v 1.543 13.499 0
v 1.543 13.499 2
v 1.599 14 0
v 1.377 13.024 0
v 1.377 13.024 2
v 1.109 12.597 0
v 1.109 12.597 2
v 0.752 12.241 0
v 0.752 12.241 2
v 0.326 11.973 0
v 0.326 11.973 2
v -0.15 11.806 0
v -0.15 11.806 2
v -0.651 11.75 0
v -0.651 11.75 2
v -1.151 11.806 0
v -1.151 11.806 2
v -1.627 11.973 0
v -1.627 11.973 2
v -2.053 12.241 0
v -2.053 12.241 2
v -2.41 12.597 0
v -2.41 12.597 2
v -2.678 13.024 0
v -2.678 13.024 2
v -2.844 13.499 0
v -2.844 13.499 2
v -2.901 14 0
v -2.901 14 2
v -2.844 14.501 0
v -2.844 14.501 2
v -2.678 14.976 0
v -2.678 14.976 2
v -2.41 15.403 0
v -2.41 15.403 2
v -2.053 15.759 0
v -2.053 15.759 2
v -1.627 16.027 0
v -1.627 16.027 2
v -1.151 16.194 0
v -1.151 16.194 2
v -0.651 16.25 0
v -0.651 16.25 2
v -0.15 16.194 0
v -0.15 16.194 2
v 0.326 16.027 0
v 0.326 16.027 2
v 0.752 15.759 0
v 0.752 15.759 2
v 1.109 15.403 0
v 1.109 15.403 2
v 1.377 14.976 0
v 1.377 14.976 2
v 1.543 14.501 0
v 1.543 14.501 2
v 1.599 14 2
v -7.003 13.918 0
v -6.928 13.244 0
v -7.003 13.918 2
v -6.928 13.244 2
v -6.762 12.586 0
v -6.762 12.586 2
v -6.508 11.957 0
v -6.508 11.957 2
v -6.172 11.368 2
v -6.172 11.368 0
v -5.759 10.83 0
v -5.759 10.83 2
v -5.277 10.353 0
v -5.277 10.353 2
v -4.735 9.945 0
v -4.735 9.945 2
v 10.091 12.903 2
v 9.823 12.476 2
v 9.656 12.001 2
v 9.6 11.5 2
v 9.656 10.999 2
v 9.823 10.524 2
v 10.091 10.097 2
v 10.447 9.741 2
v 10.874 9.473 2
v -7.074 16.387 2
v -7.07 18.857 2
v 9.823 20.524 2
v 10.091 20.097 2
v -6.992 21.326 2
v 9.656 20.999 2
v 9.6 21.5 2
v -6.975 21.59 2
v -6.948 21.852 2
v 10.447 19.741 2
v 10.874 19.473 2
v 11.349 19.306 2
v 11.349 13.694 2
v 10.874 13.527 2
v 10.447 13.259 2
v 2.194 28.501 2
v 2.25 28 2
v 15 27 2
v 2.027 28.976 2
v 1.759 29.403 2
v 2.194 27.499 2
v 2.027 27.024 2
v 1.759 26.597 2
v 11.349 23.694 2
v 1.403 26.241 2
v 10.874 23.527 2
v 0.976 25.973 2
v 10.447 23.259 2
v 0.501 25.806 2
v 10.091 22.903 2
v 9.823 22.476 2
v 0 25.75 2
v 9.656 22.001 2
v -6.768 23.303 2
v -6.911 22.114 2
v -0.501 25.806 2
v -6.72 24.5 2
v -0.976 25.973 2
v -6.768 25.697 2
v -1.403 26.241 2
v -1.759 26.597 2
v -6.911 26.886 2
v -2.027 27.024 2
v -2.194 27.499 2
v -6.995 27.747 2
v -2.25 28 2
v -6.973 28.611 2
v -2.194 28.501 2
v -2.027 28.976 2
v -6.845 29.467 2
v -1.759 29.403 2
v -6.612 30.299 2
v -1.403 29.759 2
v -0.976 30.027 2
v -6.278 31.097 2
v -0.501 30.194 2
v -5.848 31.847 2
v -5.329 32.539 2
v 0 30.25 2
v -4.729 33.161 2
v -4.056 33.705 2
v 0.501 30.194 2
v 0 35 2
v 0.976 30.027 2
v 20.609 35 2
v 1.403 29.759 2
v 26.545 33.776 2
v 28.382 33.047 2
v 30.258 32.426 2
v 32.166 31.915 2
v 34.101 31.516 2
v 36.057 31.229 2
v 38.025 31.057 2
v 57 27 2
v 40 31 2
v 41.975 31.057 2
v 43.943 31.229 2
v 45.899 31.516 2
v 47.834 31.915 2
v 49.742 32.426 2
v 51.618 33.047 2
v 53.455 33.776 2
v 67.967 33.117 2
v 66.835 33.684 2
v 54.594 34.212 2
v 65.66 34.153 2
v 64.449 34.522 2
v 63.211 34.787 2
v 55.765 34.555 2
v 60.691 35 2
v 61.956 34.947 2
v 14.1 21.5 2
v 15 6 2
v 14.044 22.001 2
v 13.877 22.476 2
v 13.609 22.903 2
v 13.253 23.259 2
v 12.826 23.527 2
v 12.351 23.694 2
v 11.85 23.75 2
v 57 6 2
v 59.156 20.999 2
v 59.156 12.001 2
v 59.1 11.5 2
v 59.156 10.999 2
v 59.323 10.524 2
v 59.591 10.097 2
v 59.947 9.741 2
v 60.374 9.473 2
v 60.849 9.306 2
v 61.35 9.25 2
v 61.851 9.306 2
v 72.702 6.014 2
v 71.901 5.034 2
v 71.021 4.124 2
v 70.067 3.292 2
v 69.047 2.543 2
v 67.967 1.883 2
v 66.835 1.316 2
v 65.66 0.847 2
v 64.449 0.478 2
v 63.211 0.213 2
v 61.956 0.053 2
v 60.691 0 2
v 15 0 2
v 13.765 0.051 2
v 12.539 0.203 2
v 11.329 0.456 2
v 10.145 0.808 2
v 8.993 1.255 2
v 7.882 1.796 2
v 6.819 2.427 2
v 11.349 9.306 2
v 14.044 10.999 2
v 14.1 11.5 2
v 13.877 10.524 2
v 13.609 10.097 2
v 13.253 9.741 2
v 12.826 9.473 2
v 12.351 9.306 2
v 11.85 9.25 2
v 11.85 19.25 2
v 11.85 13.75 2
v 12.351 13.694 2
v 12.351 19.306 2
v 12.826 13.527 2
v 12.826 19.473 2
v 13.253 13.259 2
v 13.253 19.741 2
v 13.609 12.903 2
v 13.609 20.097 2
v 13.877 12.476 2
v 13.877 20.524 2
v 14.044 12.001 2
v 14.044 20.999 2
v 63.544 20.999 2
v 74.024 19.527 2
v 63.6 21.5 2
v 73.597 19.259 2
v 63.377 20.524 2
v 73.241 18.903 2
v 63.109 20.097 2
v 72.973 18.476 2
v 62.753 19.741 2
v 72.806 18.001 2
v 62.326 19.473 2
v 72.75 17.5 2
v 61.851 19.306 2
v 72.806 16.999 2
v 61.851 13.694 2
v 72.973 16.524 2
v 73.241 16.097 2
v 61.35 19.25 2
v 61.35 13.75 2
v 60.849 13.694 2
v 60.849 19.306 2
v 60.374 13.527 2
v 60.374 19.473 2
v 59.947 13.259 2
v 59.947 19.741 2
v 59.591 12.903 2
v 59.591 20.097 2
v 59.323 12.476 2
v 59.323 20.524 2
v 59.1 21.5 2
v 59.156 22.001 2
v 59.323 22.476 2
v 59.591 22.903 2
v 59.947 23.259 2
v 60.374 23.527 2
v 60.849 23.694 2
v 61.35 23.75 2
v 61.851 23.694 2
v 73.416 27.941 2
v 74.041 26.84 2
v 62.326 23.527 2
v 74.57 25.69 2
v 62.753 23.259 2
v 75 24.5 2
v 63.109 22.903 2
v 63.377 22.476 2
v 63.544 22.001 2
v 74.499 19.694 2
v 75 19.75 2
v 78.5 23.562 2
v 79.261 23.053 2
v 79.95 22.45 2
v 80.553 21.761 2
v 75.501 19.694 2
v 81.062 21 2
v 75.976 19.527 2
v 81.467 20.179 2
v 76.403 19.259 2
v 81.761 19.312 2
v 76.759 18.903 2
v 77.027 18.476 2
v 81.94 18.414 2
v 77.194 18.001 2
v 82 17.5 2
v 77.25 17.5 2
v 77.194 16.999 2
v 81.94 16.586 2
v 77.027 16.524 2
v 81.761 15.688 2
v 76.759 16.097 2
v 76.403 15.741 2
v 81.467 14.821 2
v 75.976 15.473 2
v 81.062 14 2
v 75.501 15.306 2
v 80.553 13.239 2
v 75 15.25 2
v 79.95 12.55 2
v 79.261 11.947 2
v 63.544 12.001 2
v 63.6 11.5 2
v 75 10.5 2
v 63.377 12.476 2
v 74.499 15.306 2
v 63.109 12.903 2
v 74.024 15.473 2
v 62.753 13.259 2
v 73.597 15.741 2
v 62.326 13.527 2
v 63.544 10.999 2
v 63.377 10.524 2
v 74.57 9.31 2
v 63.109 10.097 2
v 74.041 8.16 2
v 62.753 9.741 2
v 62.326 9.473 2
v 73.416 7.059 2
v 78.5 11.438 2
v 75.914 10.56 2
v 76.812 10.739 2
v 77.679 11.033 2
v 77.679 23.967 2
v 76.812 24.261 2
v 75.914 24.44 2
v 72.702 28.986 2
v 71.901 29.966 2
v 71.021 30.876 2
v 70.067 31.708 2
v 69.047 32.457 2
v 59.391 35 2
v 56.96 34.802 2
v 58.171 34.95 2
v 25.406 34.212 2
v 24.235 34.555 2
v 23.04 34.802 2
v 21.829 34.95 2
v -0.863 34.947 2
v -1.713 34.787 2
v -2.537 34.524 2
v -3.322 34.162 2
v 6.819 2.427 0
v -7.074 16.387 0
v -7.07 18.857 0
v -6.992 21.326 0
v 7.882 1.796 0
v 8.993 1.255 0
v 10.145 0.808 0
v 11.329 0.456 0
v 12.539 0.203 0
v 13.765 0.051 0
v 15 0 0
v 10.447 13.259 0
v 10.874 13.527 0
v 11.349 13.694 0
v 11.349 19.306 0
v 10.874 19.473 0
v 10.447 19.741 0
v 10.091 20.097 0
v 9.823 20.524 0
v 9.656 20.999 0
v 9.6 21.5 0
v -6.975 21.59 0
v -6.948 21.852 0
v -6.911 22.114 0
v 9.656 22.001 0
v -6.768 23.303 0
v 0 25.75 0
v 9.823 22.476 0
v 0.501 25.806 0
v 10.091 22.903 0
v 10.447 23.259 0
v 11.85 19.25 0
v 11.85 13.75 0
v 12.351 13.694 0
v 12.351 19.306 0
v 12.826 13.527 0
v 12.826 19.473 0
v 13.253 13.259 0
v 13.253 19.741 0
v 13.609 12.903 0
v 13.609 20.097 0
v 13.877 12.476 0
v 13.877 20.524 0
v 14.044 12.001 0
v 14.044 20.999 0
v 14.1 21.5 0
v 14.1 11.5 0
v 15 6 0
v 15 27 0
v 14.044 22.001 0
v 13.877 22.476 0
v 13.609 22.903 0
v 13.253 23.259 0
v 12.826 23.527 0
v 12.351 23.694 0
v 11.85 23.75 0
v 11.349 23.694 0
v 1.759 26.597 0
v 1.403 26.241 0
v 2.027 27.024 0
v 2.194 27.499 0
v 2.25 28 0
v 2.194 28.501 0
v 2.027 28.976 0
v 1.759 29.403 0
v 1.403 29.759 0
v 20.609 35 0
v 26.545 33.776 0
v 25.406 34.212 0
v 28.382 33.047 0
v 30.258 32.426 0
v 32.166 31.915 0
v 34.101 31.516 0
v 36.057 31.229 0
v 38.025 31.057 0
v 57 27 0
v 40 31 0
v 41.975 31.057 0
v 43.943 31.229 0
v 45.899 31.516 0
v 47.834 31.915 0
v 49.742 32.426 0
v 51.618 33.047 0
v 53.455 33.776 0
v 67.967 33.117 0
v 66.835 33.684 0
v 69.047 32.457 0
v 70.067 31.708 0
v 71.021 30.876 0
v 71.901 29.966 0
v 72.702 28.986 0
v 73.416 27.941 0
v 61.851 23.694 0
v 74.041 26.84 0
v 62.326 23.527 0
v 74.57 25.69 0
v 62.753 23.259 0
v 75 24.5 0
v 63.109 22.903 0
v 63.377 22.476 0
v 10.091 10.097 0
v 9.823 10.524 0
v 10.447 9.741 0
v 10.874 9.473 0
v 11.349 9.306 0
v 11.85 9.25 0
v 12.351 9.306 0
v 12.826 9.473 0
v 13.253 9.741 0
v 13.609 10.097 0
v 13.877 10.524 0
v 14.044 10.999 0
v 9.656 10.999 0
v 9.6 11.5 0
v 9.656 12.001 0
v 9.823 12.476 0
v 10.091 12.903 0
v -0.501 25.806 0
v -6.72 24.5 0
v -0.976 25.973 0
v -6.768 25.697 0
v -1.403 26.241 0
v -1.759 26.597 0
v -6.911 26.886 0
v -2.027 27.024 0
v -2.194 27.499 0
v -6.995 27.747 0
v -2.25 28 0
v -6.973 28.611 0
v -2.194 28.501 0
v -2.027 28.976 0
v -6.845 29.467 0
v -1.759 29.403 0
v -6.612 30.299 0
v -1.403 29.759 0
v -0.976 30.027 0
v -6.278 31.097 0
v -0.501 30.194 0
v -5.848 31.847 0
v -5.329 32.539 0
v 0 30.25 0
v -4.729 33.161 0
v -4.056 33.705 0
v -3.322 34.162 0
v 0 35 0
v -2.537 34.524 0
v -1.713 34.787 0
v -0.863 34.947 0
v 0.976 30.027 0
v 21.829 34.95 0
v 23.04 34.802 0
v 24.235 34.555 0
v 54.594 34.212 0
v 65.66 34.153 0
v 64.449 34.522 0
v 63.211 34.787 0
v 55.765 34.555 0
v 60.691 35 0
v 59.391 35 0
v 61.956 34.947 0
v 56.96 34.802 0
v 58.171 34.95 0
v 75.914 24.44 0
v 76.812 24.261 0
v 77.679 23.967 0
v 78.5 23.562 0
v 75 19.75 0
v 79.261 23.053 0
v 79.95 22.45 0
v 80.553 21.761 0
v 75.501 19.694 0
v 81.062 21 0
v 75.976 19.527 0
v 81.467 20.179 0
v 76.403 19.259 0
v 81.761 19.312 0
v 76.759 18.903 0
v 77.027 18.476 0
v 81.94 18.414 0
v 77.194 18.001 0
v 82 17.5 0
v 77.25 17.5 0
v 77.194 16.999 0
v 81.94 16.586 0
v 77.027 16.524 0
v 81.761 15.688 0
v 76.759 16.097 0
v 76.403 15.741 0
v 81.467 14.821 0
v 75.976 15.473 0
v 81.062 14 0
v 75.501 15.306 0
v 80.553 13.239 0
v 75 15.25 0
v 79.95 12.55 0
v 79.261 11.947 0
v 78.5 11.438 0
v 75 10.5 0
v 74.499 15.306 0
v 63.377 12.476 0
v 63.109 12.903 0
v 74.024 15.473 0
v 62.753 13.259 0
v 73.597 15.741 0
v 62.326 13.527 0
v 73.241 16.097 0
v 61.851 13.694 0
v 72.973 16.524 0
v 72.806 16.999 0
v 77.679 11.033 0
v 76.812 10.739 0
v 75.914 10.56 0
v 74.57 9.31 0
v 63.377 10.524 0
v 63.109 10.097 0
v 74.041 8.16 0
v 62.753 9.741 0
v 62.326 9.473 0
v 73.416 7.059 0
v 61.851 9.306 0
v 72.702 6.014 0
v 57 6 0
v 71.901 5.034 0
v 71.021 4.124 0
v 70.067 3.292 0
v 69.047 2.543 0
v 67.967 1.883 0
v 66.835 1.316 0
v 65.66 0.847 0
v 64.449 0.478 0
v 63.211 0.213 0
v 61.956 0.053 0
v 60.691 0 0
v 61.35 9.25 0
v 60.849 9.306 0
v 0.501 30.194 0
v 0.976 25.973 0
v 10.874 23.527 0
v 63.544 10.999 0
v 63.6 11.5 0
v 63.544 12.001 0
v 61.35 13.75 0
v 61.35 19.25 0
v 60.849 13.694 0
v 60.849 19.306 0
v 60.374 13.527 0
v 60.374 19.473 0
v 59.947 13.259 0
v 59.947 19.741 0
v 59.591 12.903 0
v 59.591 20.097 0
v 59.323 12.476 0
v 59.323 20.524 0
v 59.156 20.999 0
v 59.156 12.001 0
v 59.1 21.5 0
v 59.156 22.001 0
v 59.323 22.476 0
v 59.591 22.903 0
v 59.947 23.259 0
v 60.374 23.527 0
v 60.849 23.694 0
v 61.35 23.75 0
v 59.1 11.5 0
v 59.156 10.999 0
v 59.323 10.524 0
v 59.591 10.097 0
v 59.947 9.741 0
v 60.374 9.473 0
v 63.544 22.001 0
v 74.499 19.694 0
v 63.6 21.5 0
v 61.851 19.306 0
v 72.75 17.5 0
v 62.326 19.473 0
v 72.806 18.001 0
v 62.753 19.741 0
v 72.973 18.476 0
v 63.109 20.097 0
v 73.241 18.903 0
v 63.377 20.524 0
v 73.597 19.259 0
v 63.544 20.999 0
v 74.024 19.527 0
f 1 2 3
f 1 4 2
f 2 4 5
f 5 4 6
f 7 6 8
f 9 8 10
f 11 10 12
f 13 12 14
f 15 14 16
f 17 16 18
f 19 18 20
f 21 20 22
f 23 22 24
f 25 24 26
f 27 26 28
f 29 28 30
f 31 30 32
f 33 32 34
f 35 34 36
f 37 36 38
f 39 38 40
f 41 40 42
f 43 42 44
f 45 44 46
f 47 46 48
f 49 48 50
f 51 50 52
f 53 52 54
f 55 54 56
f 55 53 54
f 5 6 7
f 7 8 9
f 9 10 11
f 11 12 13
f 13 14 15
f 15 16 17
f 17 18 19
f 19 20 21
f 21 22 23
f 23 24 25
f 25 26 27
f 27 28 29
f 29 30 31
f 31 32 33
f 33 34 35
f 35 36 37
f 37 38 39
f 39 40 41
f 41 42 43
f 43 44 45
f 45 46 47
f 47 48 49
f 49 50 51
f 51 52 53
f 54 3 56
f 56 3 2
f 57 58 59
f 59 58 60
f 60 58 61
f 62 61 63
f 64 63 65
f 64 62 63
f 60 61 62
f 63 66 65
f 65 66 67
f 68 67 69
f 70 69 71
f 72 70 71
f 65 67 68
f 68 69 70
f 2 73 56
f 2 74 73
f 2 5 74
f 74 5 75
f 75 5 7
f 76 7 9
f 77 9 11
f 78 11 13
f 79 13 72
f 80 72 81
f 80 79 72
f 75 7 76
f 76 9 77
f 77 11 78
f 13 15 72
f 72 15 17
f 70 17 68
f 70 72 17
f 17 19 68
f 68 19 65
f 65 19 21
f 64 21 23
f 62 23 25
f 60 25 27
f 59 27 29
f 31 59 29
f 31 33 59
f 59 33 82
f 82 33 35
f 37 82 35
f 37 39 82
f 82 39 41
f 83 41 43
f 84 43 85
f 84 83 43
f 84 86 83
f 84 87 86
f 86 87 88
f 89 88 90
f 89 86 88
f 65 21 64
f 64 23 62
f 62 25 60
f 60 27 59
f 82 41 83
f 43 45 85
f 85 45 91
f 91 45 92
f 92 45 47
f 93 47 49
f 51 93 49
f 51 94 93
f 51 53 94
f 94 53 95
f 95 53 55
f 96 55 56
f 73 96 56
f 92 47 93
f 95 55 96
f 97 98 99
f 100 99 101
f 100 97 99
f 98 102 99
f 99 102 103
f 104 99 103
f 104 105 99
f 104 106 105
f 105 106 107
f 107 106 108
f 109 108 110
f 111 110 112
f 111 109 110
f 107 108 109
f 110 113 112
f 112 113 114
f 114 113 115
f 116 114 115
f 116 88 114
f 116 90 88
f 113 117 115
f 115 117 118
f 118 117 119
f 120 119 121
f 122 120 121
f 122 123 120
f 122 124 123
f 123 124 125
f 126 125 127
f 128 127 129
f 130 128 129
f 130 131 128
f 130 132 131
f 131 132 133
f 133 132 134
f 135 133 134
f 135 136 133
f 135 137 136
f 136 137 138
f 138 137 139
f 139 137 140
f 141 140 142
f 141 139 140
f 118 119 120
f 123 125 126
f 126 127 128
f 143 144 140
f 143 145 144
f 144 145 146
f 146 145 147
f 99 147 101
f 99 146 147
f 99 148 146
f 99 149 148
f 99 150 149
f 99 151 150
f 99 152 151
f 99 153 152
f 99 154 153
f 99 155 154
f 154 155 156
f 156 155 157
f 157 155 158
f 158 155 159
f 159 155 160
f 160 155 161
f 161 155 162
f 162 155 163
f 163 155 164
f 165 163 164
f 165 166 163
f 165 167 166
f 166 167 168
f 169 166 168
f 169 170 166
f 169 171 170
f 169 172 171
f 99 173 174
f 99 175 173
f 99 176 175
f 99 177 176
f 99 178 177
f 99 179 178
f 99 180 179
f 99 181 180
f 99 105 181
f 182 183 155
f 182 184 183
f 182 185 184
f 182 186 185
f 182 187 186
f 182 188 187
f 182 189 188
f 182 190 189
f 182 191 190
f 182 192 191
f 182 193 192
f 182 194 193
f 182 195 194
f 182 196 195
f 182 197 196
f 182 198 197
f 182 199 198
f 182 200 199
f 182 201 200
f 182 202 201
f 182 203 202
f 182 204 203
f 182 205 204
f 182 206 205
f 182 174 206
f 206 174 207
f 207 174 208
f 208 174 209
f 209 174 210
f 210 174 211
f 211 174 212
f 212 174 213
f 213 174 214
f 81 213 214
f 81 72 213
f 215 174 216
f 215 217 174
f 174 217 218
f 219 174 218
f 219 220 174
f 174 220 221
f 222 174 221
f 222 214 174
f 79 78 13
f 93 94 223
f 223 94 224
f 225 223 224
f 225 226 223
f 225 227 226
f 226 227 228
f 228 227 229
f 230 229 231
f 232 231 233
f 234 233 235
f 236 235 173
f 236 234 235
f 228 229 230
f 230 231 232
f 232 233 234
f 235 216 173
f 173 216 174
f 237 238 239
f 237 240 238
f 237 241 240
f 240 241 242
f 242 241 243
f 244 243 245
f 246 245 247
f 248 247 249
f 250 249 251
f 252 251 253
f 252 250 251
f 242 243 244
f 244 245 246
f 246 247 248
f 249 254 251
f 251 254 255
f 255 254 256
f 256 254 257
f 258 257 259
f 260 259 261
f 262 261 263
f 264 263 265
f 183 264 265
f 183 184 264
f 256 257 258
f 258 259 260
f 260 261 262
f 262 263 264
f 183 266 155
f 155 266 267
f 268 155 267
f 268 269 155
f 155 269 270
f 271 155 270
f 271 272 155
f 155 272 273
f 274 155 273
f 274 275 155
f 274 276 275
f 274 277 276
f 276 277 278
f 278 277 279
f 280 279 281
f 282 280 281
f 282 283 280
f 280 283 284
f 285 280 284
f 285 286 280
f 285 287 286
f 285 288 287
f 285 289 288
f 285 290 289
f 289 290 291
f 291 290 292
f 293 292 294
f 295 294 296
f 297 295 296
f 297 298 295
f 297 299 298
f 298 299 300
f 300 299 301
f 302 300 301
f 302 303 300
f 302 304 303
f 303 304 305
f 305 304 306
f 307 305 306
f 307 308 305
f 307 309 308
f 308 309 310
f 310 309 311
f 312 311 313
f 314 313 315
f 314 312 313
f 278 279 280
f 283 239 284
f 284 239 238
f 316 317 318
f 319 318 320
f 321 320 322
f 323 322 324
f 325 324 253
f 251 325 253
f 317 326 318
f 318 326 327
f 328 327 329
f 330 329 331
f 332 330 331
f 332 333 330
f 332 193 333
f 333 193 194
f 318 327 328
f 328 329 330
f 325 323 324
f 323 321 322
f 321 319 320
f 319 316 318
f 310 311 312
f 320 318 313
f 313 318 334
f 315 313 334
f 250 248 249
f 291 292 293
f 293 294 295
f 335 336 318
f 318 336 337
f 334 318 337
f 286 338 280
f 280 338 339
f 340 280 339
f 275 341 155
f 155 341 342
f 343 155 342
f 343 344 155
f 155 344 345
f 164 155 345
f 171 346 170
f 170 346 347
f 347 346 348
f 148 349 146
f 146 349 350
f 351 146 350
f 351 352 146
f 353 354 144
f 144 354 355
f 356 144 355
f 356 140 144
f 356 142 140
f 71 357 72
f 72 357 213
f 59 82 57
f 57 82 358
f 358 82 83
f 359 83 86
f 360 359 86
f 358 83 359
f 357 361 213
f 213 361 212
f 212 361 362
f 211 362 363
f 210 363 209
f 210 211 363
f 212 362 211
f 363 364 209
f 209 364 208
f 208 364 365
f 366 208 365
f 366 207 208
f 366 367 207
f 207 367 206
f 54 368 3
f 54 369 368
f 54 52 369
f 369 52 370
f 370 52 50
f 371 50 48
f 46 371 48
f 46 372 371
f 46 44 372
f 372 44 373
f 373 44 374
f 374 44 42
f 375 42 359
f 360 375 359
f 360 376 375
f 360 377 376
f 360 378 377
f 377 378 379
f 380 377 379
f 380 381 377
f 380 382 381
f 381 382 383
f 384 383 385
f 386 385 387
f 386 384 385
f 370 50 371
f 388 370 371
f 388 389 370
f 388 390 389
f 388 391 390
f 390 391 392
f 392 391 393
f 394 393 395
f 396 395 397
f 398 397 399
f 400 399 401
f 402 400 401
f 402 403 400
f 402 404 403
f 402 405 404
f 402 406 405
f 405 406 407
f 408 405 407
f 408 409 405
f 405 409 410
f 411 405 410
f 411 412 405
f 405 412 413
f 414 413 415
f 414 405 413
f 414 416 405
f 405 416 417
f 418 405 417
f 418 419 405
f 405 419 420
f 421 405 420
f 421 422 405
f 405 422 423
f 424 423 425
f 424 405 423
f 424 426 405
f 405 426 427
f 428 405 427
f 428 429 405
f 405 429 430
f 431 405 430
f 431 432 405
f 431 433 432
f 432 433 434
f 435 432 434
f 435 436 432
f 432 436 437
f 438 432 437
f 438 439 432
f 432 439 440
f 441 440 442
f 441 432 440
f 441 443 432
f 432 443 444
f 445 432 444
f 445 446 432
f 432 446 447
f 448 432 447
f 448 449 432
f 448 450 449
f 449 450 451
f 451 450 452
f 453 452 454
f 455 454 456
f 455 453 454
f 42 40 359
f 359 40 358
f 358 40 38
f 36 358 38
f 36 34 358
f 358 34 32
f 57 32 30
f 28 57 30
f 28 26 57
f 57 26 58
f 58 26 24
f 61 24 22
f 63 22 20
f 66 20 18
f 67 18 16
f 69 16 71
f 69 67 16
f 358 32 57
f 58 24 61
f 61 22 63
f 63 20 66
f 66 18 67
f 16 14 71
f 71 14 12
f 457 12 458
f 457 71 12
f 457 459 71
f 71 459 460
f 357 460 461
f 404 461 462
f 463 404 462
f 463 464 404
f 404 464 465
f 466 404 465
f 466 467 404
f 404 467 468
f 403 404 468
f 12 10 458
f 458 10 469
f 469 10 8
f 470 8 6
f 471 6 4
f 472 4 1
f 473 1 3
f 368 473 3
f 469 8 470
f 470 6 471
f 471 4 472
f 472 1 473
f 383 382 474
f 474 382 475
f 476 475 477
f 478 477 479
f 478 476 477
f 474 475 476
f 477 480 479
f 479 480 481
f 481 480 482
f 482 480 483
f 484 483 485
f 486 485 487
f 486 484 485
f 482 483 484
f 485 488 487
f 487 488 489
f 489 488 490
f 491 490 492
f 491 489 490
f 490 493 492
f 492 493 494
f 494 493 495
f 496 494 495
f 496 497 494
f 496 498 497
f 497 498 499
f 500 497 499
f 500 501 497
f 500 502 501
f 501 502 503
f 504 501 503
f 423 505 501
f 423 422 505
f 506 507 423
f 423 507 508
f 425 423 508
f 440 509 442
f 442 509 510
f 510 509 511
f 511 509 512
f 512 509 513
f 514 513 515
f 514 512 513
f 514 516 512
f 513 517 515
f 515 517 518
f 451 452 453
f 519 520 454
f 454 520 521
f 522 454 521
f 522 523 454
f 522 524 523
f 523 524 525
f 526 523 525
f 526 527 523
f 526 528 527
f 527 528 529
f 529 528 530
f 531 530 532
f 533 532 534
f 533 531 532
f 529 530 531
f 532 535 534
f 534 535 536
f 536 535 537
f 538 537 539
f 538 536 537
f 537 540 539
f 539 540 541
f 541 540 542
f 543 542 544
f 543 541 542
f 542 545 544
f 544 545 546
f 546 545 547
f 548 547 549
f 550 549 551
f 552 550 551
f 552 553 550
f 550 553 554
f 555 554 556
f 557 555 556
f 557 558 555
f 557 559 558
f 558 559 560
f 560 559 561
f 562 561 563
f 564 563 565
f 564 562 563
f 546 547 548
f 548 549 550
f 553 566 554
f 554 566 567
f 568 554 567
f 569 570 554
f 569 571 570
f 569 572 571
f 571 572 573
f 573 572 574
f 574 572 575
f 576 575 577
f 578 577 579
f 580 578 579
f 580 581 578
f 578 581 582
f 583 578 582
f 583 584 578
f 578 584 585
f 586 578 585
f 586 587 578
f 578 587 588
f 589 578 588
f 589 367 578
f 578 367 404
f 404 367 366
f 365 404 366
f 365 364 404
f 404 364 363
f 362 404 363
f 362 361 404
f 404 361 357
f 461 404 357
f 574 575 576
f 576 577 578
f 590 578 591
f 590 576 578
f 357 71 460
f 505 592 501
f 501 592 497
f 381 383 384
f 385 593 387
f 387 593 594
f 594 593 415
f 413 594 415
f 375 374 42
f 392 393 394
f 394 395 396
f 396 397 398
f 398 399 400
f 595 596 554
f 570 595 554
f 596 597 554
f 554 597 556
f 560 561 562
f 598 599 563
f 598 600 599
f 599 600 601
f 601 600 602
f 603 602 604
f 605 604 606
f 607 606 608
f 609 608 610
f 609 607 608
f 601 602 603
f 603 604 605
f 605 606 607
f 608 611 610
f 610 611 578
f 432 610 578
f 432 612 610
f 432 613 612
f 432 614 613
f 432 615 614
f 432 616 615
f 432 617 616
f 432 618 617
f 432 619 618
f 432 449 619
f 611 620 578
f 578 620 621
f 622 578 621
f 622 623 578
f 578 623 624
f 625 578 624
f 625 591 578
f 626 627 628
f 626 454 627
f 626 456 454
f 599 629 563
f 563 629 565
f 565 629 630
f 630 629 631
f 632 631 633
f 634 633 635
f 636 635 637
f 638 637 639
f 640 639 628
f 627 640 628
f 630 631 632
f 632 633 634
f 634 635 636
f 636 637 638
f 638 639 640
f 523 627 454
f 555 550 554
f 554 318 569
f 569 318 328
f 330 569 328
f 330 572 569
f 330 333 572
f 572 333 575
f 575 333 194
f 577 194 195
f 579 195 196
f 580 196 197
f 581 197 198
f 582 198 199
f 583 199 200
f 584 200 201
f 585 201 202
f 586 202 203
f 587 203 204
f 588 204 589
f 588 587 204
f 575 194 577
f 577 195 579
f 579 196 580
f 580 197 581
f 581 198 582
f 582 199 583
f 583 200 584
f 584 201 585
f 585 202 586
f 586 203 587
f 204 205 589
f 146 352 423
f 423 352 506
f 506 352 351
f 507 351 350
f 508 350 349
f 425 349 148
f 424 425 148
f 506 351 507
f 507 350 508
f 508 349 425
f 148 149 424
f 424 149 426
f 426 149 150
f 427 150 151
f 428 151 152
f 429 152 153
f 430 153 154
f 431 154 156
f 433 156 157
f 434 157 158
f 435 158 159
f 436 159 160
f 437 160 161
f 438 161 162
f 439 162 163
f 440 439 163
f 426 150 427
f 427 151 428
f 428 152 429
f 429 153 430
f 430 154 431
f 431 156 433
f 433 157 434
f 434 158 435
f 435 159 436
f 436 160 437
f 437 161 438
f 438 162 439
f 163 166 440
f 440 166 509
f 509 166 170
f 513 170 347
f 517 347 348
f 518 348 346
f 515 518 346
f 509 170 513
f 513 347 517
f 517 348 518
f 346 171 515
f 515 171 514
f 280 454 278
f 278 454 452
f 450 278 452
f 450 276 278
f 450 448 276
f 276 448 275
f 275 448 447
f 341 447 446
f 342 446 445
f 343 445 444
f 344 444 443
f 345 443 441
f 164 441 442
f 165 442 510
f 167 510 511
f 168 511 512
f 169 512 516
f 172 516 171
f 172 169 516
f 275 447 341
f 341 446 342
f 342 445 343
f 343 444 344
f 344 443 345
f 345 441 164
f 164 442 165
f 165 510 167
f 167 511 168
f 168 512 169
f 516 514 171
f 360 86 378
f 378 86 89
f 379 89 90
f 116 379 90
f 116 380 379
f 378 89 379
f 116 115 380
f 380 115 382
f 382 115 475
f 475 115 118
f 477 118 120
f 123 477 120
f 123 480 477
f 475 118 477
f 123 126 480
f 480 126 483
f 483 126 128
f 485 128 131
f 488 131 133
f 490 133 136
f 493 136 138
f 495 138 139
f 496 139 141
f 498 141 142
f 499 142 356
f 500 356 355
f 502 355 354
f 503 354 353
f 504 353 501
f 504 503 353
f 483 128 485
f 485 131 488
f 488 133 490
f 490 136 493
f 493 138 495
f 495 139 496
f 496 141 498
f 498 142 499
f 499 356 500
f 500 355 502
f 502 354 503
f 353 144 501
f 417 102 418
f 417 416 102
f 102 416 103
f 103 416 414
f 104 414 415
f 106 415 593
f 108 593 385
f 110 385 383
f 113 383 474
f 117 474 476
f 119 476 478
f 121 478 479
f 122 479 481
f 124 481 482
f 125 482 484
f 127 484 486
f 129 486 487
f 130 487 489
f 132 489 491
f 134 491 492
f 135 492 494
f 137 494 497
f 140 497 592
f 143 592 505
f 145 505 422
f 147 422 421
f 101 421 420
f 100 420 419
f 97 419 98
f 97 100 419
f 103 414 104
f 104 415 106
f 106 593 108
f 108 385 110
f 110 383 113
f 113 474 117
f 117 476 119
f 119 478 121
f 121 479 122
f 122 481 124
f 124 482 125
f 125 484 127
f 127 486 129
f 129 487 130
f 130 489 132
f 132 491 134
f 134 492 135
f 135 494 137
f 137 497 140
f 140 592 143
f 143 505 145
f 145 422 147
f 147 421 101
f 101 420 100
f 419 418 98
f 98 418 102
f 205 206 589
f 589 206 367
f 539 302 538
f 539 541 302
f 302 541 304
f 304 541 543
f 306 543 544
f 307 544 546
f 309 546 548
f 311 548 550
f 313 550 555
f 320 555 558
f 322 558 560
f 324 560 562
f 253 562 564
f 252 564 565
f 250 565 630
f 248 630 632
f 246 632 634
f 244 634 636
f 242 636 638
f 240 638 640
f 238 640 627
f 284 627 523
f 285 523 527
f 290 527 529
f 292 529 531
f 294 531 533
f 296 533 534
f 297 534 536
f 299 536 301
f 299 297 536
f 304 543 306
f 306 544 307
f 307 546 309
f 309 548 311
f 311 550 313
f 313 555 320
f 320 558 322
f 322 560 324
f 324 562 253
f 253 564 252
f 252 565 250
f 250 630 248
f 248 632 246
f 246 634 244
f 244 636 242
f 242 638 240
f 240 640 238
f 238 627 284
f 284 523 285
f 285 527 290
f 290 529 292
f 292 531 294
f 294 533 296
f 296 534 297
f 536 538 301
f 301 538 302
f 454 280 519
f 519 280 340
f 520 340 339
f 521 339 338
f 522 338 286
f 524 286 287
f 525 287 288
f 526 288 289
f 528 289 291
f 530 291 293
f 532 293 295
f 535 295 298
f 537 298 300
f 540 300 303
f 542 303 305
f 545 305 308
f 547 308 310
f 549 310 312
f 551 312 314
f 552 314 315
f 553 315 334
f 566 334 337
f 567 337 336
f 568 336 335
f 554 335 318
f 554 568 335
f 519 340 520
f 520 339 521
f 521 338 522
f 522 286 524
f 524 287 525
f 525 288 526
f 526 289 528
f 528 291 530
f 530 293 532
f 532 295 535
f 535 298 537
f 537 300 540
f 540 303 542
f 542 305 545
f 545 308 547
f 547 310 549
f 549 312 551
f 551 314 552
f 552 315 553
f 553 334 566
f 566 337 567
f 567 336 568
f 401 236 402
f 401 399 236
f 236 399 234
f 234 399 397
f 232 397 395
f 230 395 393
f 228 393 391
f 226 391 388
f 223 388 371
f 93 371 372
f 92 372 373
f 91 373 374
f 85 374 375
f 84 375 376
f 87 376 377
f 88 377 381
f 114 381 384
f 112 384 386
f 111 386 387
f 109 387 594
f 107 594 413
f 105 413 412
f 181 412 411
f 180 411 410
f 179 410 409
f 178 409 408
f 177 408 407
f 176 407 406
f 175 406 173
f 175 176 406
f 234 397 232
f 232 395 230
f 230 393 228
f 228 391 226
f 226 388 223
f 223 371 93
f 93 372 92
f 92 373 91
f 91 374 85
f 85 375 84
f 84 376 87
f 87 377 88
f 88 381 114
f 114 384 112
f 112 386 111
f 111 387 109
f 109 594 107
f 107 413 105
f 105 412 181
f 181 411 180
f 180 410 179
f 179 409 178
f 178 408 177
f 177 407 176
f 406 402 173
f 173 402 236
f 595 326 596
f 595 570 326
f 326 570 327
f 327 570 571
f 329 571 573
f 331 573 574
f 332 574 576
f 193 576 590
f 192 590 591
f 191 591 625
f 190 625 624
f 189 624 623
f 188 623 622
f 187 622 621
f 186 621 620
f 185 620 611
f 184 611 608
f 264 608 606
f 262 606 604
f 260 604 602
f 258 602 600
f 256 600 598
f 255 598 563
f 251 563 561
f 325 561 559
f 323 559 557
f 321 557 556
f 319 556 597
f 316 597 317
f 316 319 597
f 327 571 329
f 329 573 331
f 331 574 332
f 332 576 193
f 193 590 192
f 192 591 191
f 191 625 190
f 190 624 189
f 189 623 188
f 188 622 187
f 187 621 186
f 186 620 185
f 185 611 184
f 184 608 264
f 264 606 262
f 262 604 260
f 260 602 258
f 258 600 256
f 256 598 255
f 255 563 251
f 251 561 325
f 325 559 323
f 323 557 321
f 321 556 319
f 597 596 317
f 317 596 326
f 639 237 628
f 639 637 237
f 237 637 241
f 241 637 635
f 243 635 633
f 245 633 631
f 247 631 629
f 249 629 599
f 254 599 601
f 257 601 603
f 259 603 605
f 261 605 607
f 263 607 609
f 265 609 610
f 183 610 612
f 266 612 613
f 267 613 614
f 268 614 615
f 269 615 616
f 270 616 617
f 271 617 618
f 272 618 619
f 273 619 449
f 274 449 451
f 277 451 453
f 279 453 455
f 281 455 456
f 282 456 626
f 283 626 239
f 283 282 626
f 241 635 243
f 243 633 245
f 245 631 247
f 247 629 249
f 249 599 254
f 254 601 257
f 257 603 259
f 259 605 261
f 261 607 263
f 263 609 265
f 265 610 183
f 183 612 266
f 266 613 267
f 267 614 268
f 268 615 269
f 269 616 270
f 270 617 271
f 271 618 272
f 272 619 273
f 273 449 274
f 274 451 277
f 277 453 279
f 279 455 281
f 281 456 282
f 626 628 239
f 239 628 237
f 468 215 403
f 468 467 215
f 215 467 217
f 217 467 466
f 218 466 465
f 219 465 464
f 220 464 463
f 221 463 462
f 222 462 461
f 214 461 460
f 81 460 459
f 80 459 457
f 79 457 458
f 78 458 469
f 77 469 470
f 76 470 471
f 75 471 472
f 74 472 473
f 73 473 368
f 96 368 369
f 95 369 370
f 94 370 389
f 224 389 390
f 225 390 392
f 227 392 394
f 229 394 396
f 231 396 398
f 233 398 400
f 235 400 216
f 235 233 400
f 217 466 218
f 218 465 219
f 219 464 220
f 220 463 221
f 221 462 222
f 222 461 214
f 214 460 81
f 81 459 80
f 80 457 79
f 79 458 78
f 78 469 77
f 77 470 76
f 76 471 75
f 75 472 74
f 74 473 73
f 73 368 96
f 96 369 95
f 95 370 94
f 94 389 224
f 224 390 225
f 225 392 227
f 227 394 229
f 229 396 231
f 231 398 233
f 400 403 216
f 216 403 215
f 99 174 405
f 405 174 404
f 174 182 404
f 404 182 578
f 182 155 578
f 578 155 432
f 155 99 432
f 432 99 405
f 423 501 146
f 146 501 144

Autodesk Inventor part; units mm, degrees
ref_plane "YZ Plane" through (0, 0, 0) normal (1, 0, 0) x (0, 1, 0)
ref_plane "XZ Plane" through (0, 0, 0) normal (0, 1, 0) x (-1, 0, 0)
ref_plane "XY Plane" through (0, 0, 0) normal (0, 0, 1) x (1, 0, 0)
sketch "Skizze1" plane through (0, 0, 0) normal (0, 0, 1) x (1, 0, 0)
  line L0 (0, 78) -> (0, -13) projected
  line L1 (-15, 0) -> (90, 0) projected
  line L2 (0, 0) -> (75, 0)
  line L3 (75, 0) -> (75, 35)
  line L4 (75, 35) -> (0, 35)
  line L5 (0, 35) -> (0, 0)
  arc A0 (24, 35) -> (56, 35) centre (40, 65) ccw
  dimension "d0" = 75
  dimension "d1" = 35
  dimension "d3" = 35
  dimension "d4" = 30
  dimension "d6" = 34
extrude "Extrusion1" add sketch "Skizze1" along normal blind 2 contours L4 A0 L3 L1 L0
sketch "Skizze2" plane through (0, 0, 2) normal (0, 0, 1) x (1, 0, 0)
  line L0 (36, 6) -> (57, 6)
  line L1 (57, 6) -> (57, 27)
  line L2 (57, 27) -> (36, 27)
  line L3 (36, 27) -> (36, 6)
  line L4 (36, 6) -> (57, 27) construction
  line L5 (57, 6) -> (36, 27) construction
  line L6 (57, 27) -> (15, 27)
  line L7 (15, 27) -> (15, 6)
  line L8 (15, 6) -> (57, 6)
  line L9 (57, 6) -> (57, 27)
  line L10 (75, 0) -> (75, 35) projected
  line L11 (24, 35) -> (0, 35) projected
  circle A0 centre (61.35, 21.5) radius 2.25
  circle A1 centre (61.35, 11.5) radius 2.25
  circle A2 centre (11.85, 11.5) radius 2.25
  circle A3 centre (11.85, 21.5) radius 2.25
  point P0 (0, 0)
  point P1 (46.5, 16.5)
  dimension "d9" = 21
  dimension "d10" = 21
  dimension "d11" = 42
  dimension "d12" = 0
  dimension "d13" = 18
  dimension "d14" = 8
  dimension "d15" = 4.5
  dimension "d16" = 4.5
  dimension "d17" = 4.5
  dimension "d18" = 4.5
  dimension "d19" = 14.85
  dimension "d20" = 5
  dimension "d21" = 5
  dimension "d22" = 14.85
  dimension "d23" = 34.65
  dimension "d24" = 34.65
  dimension "d27" = 5
  dimension "d28" = 5
extrude "Extrusion2" cut sketch "Skizze2" against normal blind 2
sketch "Skizze3" plane through (0, 0, 2) normal (0, 0, 1) x (1, 0, 0)
  circle A0 centre (11.85, 21.5) radius 2.25 projected
  circle A1 centre (61.35, 11.5) radius 2.25 projected
  circle A2 centre (61.35, 21.5) radius 2.25 projected
  circle A3 centre (11.85, 11.5) radius 2.25 projected
  line L0 (15, 27) -> (15, 6) projected
  line L1 (15, 6) -> (57, 6) projected
  line L2 (57, 6) -> (57, 27) projected
  line L3 (57, 27) -> (15, 27) projected
  line L4 (0, 0) -> (0, 35) projected
  line L5 (0, 35) -> (24, 35) projected
  arc A4 (24, 35) -> (56, 35) centre (40, 65) ccw projected
  line L6 (56, 35) -> (75, 35) projected
  line L7 (75, 35) -> (75, 0) projected
  line L8 (75, 0) -> (0, 0) projected
  line L9 (75, 0) -> (75, 35) projected
  circle A5 centre (75, 17.5) radius 7
  line L10 (75, 0) -> (75, 35) projected
  dimension "d31" = 14
  dimension "d32" = 35
  dimension "d33" = 17.5
extrude "Extrusion3" add sketch "Skizze3" against normal blind 2 contours A5 L7 | L7 A5
sketch "Skizze4" plane through (0, 0, 2) normal (0, 0, 1) x (1, 0, 0)
  circle A0 centre (11.85, 21.5) radius 2.25 projected
  circle A1 centre (61.35, 11.5) radius 2.25 projected
  circle A2 centre (61.35, 21.5) radius 2.25 projected
  circle A3 centre (11.85, 11.5) radius 2.25 projected
  line L0 (15, 27) -> (15, 6) projected
  line L1 (15, 6) -> (57, 6) projected
  line L2 (57, 6) -> (57, 27) projected
  line L3 (57, 27) -> (15, 27) projected
  line L4 (0, 0) -> (0, 35) projected
  line L5 (0, 35) -> (24, 35) projected
  arc A4 (24, 35) -> (56, 35) centre (40, 65) ccw projected
  line L6 (56, 35) -> (75, 35) projected
  line L7 (75, 35) -> (75, 24.5) projected
  arc A5 (75, 10.5) -> (75, 24.5) centre (75, 17.5) ccw projected
  line L8 (75, 10.5) -> (75, 0) projected
  line L9 (75, 0) -> (0, 0) projected
  circle A6 centre (75, 17.5) radius 2.25
  dimension "d36" = 4.5
extrude "Extrusion4" cut sketch "Skizze4" against normal blind 2 contours A6
fillet "Rundung1" radius 15 1 edges at (0, 0, 1)
sketch "Skizze5" plane through (0, 0, 2) normal (0, 0, 1) x (1, 0, 0)
  line L0 (0, 35) -> (0, 15) projected
  circle A0 centre (0, 28) radius 7
  circle A1 centre (75, 17.5) radius 2.25 projected
  arc A2 (75, 10.5) -> (75, 24.5) centre (75, 17.5) ccw projected
  line L1 (75, 10.5) -> (75, 0) projected
  line L2 (75, 0) -> (15, 0) projected
  arc A3 (0, 15) -> (15, 0) centre (15, 15) ccw projected
  line L3 (0, 15) -> (0, 35) projected
  line L4 (0, 35) -> (24, 35) projected
  arc A4 (24, 35) -> (56, 35) centre (40, 65) ccw projected
  line L5 (56, 35) -> (75, 35) projected
  line L6 (75, 35) -> (75, 24.5) projected
  circle A5 centre (11.85, 21.5) radius 2.25 projected
  circle A6 centre (61.35, 11.5) radius 2.25 projected
  circle A7 centre (61.35, 21.5) radius 2.25 projected
  circle A8 centre (11.85, 11.5) radius 2.25 projected
  line L7 (15, 27) -> (15, 6) projected
  line L8 (15, 6) -> (57, 6) projected
  line L9 (57, 6) -> (57, 27) projected
  line L10 (57, 27) -> (15, 27) projected
  circle A9 centre (0, 21) radius 7
  point P0 (0, 0)
  dimension "d40" = 14
  dimension "d46" = 14
extrude "Extrusion5" add sketch "Skizze5" against normal blind 2 contours A0 A9 L0 | L0 A9 A0 | A9 A0 L0 | L0 A0 A9 | A0 L0 A3 A9 | A0 A9 A3 L0
sketch "Skizze6" plane through (0, 0, 2) normal (0, 0, 1) x (1, 0, 0)
  circle A0 centre (75, 17.5) radius 2.25 projected
  arc A1 (75, 10.5) -> (75, 24.5) centre (75, 17.5) ccw projected
  line L0 (75, 10.5) -> (75, 0) projected
  line L1 (75, 0) -> (15, 0) projected
  line L2 (0, 35) -> (24, 35) projected
  arc A2 (24, 35) -> (56, 35) centre (40, 65) ccw projected
  line L3 (56, 35) -> (75, 35) projected
  line L4 (75, 35) -> (75, 24.5) projected
  circle A3 centre (11.85, 21.5) radius 2.25 projected
  circle A4 centre (61.35, 11.5) radius 2.25 projected
  circle A5 centre (61.35, 21.5) radius 2.25 projected
  circle A6 centre (11.85, 11.5) radius 2.25 projected
  line L5 (15, 27) -> (15, 6) projected
  line L6 (15, 6) -> (57, 6) projected
  line L7 (57, 6) -> (57, 27) projected
  line L8 (57, 27) -> (15, 27) projected
  circle A7 centre (0, 28) radius 2.25
  circle A8 centre (75, 17.5) radius 75.7314
  circle A9 centre (-0.7298, 18) radius 7
  arc A10 (0.0334, 14.0001) -> (15, 0) centre (15, 15) ccw projected
  arc A11 (-6.0622, 24.5) -> (0.0334, 14.0001) centre (0, 21) ccw projected
  arc A12 (0, 35) -> (-6.0622, 24.5) centre (0, 28) ccw projected
  point P0 (0, 0)
  point P1 (0, 21)
  dimension "d43" = 4.5
  dimension "d47" = 14
  dimension "d48" = 3
extrude "Extrusion6" cut sketch "Skizze6" against normal blind 2 contours A8 A7 | A7 A8
fillet "Rundung2" radius 15 2 edges at (-6.0622, 24.5, 1) (0.0334, 14.0001, 1)
sketch "Skizze7" plane through (0, 0, 2) normal (0, 0, 1) x (1, 0, 0)
  circle A0 centre (0, 28) radius 2.25 projected
  circle A1 centre (75, 17.5) radius 2.25 projected
  arc A2 (75, 10.5) -> (75, 24.5) centre (75, 17.5) ccw projected
  line L0 (75, 10.5) -> (75, 0) projected
  line L1 (75, 0) -> (15, 0) projected
  arc A3 (1.286, 8.9233) -> (15, 0) centre (15, 15) ccw projected
  arc A4 (1.286, 8.9233) -> (-3.9544, 15.2239) centre (-12.428, 2.8466) ccw projected
  arc A5 (-6.9108, 22.1136) -> (-3.9544, 15.2239) centre (0, 21) ccw projected
  arc A6 (-6.9108, 22.1136) -> (-6.9108, 26.8864) centre (-21.7198, 24.5) ccw projected
  arc A7 (0, 35) -> (-6.9108, 26.8864) centre (0, 28) ccw projected
  line L2 (0, 35) -> (24, 35) projected
  arc A8 (24, 35) -> (56, 35) centre (40, 65) ccw projected
  line L3 (56, 35) -> (75, 35) projected
  line L4 (75, 35) -> (75, 24.5) projected
  circle A9 centre (11.85, 21.5) radius 2.25 projected
  circle A10 centre (61.35, 11.5) radius 2.25 projected
  circle A11 centre (61.35, 21.5) radius 2.25 projected
  circle A12 centre (11.85, 11.5) radius 2.25 projected
  line L5 (15, 27) -> (15, 6) projected
  line L6 (15, 6) -> (57, 6) projected
  line L7 (57, 6) -> (57, 27) projected
  line L8 (57, 27) -> (15, 27) projected
  arc A13 (75, 10.5) -> (75, 24.5) centre (75, 17.5) ccw projected
  circle A14 centre (75, 17.5) radius 75.7314
  circle A15 centre (-0.7166, 19) radius 2.25
  point P0 (0, 0)
  dimension "d50" = 9
  dimension "d51" = 4.5
extrude "Extrusion7" cut sketch "Skizze7" against normal blind 2 contours A15 A14 | A14 A15
fillet "Rundung3" radius 15 4 edges at (75, 35, 1) (56, 35, 1) (24, 35, 1) (75, 0, 1)
sketch "Skizze8" plane through (0, 0, 2) normal (0, 0, 1) x (1, 0, 0)
  circle A0 centre (-0.7166, 19) radius 2.25 projected
  arc A1 (1.286, 8.9233) -> (-3.9544, 15.2239) centre (-12.428, 2.8466) ccw projected
  arc A2 (-6.9108, 22.1136) -> (-3.9544, 15.2239) centre (0, 21) ccw projected
  arc A3 (-6.9108, 22.1136) -> (-6.9108, 26.8864) centre (-21.7198, 24.5) ccw projected
  arc A4 (0, 35) -> (-6.9108, 26.8864) centre (0, 28) ccw projected
  line L0 (0, 35) -> (20.6093, 35) projected
  arc A5 (26.5452, 33.7755) -> (20.6093, 35) centre (20.6093, 20) ccw projected
  arc A6 (26.5452, 33.7755) -> (53.4548, 33.7755) centre (40, 65) ccw projected
  arc A7 (59.3907, 35) -> (53.4548, 33.7755) centre (59.3907, 20) ccw projected
  line L1 (59.3907, 35) -> (60.6909, 35) projected
  arc A8 (75, 24.5) -> (60.6909, 35) centre (60.6909, 20) ccw projected
  arc A9 (75, 10.5) -> (75, 24.5) centre (75, 17.5) ccw projected
  arc A10 (60.6909, 0) -> (75, 10.5) centre (60.6909, 15) ccw projected
  line L2 (60.6909, 0) -> (15, 0) projected
  arc A11 (1.286, 8.9233) -> (15, 0) centre (15, 15) ccw projected
  circle A12 centre (0, 28) radius 2.25 projected
  circle A13 centre (75, 17.5) radius 2.25 projected
  circle A14 centre (11.85, 21.5) radius 2.25 projected
  circle A15 centre (61.35, 11.5) radius 2.25 projected
  circle A16 centre (61.35, 21.5) radius 2.25 projected
  circle A17 centre (11.85, 11.5) radius 2.25 projected
  line L3 (15, 27) -> (15, 6) projected
  line L4 (15, 6) -> (57, 6) projected
  line L5 (57, 6) -> (57, 27) projected
  line L6 (57, 27) -> (15, 27) projected
  circle A18 centre (75, 17.5) radius 2.25 projected
  circle A19 centre (75, 17.5) radius 82.0816
  line L7 (-6.8487, 11.3205) -> (6.8192, 2.4272)
  arc A20 (1.286, 8.9233) -> (15, 0) centre (15, 15) ccw projected
  line L8 (6.8192, 2.4272) -> (-0.8956, 15)
  line L9 (-0.8956, 15) -> (-5.8598, 18.2396)
  line L10 (-5.8598, 18.2396) -> (-6.9924, 21.3263)
  arc A21 (-6.9108, 22.1136) -> (-3.9544, 15.2239) centre (0, 21) ccw projected
  point P0 (0, 0)
extrude "Extrusion8" add sketch "Skizze8" against normal blind 2 contours A11 L7 A19 A2 A1 | A1 A2 L10 L9 L8 A11
fillet "Rundung4" radius 5 1 edges at (-6.8487, 11.3205, 1)
sketch "Skizze9" plane through (0, 0, 2) normal (0, 0, 1) x (1, 0, 0)
  arc A0 (26.5452, 33.7755) -> (20.6093, 35) centre (20.6093, 20) ccw projected
  arc A1 (26.5452, 33.7755) -> (53.4548, 33.7755) centre (40, 65) ccw projected
  arc A2 (59.3907, 35) -> (53.4548, 33.7755) centre (59.3907, 20) ccw projected
  line L0 (59.3907, 35) -> (60.6909, 35) projected
  arc A3 (75, 24.5) -> (60.6909, 35) centre (60.6909, 20) ccw projected
  arc A4 (75, 10.5) -> (75, 24.5) centre (75, 17.5) ccw projected
  arc A5 (60.6909, 0) -> (75, 10.5) centre (60.6909, 15) ccw projected
  line L1 (60.6909, 0) -> (15, 0) projected
  arc A6 (6.8192, 2.4272) -> (15, 0) centre (15, 15) ccw projected
  line L2 (6.8192, 2.4272) -> (-4.7351, 9.9453) projected
  arc A7 (-7.0034, 13.918) -> (-4.7351, 9.9453) centre (-2.0082, 14.1362) ccw projected
  arc A8 (-6.9924, 21.3263) -> (-7.0034, 13.918) centre (75, 17.5) ccw projected
  arc A9 (-6.9108, 22.1136) -> (-6.9924, 21.3263) centre (0, 21) ccw projected
  arc A10 (-6.9108, 22.1136) -> (-6.9108, 26.8864) centre (-21.7198, 24.5) ccw projected
  arc A11 (0, 35) -> (-6.9108, 26.8864) centre (0, 28) ccw projected
  line L3 (0, 35) -> (20.6093, 35) projected
  circle A12 centre (-0.7166, 19) radius 2.25 projected
  circle A13 centre (0, 28) radius 2.25 projected
  circle A14 centre (75, 17.5) radius 2.25 projected
  circle A15 centre (11.85, 21.5) radius 2.25 projected
  circle A16 centre (61.35, 11.5) radius 2.25 projected
  circle A17 centre (61.35, 21.5) radius 2.25 projected
  circle A18 centre (11.85, 11.5) radius 2.25 projected
  line L4 (15, 27) -> (15, 6) projected
  line L5 (15, 6) -> (57, 6) projected
  line L6 (57, 6) -> (57, 27) projected
  line L7 (57, 27) -> (15, 27) projected
  point P0 (0, 0)
extrude "Extrusion9" add sketch "Skizze9" against normal up to surface (2 mm away) contours A12
sketch "Skizze10" plane through (0, 0, 2) normal (0, 0, 1) x (1, 0, 0)
  arc A0 (26.5452, 33.7755) -> (20.6093, 35) centre (20.6093, 20) ccw projected
  arc A1 (26.5452, 33.7755) -> (53.4548, 33.7755) centre (40, 65) ccw projected
  arc A2 (59.3907, 35) -> (53.4548, 33.7755) centre (59.3907, 20) ccw projected
  line L0 (59.3907, 35) -> (60.6909, 35) projected
  arc A3 (75, 24.5) -> (60.6909, 35) centre (60.6909, 20) ccw projected
  arc A4 (75, 10.5) -> (75, 24.5) centre (75, 17.5) ccw projected
  arc A5 (60.6909, 0) -> (75, 10.5) centre (60.6909, 15) ccw projected
  line L1 (60.6909, 0) -> (15, 0) projected
  arc A6 (6.8192, 2.4272) -> (15, 0) centre (15, 15) ccw projected
  line L2 (6.8192, 2.4272) -> (-4.7351, 9.9453) projected
  arc A7 (-7.0034, 13.918) -> (-4.7351, 9.9453) centre (-2.0082, 14.1362) ccw projected
  arc A8 (-6.9924, 21.3263) -> (-7.0034, 13.918) centre (75, 17.5) ccw projected
  arc A9 (-6.9108, 22.1136) -> (-6.9924, 21.3263) centre (0, 21) ccw projected
  arc A10 (-6.9108, 22.1136) -> (-6.9108, 26.8864) centre (-21.7198, 24.5) ccw projected
  arc A11 (0, 35) -> (-6.9108, 26.8864) centre (0, 28) ccw projected
  line L3 (0, 35) -> (20.6093, 35) projected
  circle A12 centre (0, 28) radius 2.25 projected
  circle A13 centre (75, 17.5) radius 2.25 projected
  circle A14 centre (11.85, 21.5) radius 2.25 projected
  circle A15 centre (61.35, 11.5) radius 2.25 projected
  circle A16 centre (61.35, 21.5) radius 2.25 projected
  circle A17 centre (11.85, 11.5) radius 2.25 projected
  line L4 (15, 27) -> (15, 6) projected
  line L5 (15, 6) -> (57, 6) projected
  line L6 (57, 6) -> (57, 27) projected
  line L7 (57, 27) -> (15, 27) projected
  circle A18 centre (75, 17.5) radius 75.7314
  circle A19 centre (-0.6505, 14) radius 2.25
  point P0 (0, 0)
  dimension "d60" = 14
  dimension "d61" = 4.5
extrude "Extrusion10" cut sketch "Skizze10" against normal blind 2 contours A19 A18 | A18 A19
equation "\"d16\" = d15"
equation "\"d17\" = d15"
equation "\"d18\" = d17"
equation "\"d21\" = d20"
equation "\"d22\" = d19"
equation "\"d24\" = d23"
equation "\"d28\" = d27"
equation "\"d33\" = 0.5 * d32"
properties part number "Adapter"
